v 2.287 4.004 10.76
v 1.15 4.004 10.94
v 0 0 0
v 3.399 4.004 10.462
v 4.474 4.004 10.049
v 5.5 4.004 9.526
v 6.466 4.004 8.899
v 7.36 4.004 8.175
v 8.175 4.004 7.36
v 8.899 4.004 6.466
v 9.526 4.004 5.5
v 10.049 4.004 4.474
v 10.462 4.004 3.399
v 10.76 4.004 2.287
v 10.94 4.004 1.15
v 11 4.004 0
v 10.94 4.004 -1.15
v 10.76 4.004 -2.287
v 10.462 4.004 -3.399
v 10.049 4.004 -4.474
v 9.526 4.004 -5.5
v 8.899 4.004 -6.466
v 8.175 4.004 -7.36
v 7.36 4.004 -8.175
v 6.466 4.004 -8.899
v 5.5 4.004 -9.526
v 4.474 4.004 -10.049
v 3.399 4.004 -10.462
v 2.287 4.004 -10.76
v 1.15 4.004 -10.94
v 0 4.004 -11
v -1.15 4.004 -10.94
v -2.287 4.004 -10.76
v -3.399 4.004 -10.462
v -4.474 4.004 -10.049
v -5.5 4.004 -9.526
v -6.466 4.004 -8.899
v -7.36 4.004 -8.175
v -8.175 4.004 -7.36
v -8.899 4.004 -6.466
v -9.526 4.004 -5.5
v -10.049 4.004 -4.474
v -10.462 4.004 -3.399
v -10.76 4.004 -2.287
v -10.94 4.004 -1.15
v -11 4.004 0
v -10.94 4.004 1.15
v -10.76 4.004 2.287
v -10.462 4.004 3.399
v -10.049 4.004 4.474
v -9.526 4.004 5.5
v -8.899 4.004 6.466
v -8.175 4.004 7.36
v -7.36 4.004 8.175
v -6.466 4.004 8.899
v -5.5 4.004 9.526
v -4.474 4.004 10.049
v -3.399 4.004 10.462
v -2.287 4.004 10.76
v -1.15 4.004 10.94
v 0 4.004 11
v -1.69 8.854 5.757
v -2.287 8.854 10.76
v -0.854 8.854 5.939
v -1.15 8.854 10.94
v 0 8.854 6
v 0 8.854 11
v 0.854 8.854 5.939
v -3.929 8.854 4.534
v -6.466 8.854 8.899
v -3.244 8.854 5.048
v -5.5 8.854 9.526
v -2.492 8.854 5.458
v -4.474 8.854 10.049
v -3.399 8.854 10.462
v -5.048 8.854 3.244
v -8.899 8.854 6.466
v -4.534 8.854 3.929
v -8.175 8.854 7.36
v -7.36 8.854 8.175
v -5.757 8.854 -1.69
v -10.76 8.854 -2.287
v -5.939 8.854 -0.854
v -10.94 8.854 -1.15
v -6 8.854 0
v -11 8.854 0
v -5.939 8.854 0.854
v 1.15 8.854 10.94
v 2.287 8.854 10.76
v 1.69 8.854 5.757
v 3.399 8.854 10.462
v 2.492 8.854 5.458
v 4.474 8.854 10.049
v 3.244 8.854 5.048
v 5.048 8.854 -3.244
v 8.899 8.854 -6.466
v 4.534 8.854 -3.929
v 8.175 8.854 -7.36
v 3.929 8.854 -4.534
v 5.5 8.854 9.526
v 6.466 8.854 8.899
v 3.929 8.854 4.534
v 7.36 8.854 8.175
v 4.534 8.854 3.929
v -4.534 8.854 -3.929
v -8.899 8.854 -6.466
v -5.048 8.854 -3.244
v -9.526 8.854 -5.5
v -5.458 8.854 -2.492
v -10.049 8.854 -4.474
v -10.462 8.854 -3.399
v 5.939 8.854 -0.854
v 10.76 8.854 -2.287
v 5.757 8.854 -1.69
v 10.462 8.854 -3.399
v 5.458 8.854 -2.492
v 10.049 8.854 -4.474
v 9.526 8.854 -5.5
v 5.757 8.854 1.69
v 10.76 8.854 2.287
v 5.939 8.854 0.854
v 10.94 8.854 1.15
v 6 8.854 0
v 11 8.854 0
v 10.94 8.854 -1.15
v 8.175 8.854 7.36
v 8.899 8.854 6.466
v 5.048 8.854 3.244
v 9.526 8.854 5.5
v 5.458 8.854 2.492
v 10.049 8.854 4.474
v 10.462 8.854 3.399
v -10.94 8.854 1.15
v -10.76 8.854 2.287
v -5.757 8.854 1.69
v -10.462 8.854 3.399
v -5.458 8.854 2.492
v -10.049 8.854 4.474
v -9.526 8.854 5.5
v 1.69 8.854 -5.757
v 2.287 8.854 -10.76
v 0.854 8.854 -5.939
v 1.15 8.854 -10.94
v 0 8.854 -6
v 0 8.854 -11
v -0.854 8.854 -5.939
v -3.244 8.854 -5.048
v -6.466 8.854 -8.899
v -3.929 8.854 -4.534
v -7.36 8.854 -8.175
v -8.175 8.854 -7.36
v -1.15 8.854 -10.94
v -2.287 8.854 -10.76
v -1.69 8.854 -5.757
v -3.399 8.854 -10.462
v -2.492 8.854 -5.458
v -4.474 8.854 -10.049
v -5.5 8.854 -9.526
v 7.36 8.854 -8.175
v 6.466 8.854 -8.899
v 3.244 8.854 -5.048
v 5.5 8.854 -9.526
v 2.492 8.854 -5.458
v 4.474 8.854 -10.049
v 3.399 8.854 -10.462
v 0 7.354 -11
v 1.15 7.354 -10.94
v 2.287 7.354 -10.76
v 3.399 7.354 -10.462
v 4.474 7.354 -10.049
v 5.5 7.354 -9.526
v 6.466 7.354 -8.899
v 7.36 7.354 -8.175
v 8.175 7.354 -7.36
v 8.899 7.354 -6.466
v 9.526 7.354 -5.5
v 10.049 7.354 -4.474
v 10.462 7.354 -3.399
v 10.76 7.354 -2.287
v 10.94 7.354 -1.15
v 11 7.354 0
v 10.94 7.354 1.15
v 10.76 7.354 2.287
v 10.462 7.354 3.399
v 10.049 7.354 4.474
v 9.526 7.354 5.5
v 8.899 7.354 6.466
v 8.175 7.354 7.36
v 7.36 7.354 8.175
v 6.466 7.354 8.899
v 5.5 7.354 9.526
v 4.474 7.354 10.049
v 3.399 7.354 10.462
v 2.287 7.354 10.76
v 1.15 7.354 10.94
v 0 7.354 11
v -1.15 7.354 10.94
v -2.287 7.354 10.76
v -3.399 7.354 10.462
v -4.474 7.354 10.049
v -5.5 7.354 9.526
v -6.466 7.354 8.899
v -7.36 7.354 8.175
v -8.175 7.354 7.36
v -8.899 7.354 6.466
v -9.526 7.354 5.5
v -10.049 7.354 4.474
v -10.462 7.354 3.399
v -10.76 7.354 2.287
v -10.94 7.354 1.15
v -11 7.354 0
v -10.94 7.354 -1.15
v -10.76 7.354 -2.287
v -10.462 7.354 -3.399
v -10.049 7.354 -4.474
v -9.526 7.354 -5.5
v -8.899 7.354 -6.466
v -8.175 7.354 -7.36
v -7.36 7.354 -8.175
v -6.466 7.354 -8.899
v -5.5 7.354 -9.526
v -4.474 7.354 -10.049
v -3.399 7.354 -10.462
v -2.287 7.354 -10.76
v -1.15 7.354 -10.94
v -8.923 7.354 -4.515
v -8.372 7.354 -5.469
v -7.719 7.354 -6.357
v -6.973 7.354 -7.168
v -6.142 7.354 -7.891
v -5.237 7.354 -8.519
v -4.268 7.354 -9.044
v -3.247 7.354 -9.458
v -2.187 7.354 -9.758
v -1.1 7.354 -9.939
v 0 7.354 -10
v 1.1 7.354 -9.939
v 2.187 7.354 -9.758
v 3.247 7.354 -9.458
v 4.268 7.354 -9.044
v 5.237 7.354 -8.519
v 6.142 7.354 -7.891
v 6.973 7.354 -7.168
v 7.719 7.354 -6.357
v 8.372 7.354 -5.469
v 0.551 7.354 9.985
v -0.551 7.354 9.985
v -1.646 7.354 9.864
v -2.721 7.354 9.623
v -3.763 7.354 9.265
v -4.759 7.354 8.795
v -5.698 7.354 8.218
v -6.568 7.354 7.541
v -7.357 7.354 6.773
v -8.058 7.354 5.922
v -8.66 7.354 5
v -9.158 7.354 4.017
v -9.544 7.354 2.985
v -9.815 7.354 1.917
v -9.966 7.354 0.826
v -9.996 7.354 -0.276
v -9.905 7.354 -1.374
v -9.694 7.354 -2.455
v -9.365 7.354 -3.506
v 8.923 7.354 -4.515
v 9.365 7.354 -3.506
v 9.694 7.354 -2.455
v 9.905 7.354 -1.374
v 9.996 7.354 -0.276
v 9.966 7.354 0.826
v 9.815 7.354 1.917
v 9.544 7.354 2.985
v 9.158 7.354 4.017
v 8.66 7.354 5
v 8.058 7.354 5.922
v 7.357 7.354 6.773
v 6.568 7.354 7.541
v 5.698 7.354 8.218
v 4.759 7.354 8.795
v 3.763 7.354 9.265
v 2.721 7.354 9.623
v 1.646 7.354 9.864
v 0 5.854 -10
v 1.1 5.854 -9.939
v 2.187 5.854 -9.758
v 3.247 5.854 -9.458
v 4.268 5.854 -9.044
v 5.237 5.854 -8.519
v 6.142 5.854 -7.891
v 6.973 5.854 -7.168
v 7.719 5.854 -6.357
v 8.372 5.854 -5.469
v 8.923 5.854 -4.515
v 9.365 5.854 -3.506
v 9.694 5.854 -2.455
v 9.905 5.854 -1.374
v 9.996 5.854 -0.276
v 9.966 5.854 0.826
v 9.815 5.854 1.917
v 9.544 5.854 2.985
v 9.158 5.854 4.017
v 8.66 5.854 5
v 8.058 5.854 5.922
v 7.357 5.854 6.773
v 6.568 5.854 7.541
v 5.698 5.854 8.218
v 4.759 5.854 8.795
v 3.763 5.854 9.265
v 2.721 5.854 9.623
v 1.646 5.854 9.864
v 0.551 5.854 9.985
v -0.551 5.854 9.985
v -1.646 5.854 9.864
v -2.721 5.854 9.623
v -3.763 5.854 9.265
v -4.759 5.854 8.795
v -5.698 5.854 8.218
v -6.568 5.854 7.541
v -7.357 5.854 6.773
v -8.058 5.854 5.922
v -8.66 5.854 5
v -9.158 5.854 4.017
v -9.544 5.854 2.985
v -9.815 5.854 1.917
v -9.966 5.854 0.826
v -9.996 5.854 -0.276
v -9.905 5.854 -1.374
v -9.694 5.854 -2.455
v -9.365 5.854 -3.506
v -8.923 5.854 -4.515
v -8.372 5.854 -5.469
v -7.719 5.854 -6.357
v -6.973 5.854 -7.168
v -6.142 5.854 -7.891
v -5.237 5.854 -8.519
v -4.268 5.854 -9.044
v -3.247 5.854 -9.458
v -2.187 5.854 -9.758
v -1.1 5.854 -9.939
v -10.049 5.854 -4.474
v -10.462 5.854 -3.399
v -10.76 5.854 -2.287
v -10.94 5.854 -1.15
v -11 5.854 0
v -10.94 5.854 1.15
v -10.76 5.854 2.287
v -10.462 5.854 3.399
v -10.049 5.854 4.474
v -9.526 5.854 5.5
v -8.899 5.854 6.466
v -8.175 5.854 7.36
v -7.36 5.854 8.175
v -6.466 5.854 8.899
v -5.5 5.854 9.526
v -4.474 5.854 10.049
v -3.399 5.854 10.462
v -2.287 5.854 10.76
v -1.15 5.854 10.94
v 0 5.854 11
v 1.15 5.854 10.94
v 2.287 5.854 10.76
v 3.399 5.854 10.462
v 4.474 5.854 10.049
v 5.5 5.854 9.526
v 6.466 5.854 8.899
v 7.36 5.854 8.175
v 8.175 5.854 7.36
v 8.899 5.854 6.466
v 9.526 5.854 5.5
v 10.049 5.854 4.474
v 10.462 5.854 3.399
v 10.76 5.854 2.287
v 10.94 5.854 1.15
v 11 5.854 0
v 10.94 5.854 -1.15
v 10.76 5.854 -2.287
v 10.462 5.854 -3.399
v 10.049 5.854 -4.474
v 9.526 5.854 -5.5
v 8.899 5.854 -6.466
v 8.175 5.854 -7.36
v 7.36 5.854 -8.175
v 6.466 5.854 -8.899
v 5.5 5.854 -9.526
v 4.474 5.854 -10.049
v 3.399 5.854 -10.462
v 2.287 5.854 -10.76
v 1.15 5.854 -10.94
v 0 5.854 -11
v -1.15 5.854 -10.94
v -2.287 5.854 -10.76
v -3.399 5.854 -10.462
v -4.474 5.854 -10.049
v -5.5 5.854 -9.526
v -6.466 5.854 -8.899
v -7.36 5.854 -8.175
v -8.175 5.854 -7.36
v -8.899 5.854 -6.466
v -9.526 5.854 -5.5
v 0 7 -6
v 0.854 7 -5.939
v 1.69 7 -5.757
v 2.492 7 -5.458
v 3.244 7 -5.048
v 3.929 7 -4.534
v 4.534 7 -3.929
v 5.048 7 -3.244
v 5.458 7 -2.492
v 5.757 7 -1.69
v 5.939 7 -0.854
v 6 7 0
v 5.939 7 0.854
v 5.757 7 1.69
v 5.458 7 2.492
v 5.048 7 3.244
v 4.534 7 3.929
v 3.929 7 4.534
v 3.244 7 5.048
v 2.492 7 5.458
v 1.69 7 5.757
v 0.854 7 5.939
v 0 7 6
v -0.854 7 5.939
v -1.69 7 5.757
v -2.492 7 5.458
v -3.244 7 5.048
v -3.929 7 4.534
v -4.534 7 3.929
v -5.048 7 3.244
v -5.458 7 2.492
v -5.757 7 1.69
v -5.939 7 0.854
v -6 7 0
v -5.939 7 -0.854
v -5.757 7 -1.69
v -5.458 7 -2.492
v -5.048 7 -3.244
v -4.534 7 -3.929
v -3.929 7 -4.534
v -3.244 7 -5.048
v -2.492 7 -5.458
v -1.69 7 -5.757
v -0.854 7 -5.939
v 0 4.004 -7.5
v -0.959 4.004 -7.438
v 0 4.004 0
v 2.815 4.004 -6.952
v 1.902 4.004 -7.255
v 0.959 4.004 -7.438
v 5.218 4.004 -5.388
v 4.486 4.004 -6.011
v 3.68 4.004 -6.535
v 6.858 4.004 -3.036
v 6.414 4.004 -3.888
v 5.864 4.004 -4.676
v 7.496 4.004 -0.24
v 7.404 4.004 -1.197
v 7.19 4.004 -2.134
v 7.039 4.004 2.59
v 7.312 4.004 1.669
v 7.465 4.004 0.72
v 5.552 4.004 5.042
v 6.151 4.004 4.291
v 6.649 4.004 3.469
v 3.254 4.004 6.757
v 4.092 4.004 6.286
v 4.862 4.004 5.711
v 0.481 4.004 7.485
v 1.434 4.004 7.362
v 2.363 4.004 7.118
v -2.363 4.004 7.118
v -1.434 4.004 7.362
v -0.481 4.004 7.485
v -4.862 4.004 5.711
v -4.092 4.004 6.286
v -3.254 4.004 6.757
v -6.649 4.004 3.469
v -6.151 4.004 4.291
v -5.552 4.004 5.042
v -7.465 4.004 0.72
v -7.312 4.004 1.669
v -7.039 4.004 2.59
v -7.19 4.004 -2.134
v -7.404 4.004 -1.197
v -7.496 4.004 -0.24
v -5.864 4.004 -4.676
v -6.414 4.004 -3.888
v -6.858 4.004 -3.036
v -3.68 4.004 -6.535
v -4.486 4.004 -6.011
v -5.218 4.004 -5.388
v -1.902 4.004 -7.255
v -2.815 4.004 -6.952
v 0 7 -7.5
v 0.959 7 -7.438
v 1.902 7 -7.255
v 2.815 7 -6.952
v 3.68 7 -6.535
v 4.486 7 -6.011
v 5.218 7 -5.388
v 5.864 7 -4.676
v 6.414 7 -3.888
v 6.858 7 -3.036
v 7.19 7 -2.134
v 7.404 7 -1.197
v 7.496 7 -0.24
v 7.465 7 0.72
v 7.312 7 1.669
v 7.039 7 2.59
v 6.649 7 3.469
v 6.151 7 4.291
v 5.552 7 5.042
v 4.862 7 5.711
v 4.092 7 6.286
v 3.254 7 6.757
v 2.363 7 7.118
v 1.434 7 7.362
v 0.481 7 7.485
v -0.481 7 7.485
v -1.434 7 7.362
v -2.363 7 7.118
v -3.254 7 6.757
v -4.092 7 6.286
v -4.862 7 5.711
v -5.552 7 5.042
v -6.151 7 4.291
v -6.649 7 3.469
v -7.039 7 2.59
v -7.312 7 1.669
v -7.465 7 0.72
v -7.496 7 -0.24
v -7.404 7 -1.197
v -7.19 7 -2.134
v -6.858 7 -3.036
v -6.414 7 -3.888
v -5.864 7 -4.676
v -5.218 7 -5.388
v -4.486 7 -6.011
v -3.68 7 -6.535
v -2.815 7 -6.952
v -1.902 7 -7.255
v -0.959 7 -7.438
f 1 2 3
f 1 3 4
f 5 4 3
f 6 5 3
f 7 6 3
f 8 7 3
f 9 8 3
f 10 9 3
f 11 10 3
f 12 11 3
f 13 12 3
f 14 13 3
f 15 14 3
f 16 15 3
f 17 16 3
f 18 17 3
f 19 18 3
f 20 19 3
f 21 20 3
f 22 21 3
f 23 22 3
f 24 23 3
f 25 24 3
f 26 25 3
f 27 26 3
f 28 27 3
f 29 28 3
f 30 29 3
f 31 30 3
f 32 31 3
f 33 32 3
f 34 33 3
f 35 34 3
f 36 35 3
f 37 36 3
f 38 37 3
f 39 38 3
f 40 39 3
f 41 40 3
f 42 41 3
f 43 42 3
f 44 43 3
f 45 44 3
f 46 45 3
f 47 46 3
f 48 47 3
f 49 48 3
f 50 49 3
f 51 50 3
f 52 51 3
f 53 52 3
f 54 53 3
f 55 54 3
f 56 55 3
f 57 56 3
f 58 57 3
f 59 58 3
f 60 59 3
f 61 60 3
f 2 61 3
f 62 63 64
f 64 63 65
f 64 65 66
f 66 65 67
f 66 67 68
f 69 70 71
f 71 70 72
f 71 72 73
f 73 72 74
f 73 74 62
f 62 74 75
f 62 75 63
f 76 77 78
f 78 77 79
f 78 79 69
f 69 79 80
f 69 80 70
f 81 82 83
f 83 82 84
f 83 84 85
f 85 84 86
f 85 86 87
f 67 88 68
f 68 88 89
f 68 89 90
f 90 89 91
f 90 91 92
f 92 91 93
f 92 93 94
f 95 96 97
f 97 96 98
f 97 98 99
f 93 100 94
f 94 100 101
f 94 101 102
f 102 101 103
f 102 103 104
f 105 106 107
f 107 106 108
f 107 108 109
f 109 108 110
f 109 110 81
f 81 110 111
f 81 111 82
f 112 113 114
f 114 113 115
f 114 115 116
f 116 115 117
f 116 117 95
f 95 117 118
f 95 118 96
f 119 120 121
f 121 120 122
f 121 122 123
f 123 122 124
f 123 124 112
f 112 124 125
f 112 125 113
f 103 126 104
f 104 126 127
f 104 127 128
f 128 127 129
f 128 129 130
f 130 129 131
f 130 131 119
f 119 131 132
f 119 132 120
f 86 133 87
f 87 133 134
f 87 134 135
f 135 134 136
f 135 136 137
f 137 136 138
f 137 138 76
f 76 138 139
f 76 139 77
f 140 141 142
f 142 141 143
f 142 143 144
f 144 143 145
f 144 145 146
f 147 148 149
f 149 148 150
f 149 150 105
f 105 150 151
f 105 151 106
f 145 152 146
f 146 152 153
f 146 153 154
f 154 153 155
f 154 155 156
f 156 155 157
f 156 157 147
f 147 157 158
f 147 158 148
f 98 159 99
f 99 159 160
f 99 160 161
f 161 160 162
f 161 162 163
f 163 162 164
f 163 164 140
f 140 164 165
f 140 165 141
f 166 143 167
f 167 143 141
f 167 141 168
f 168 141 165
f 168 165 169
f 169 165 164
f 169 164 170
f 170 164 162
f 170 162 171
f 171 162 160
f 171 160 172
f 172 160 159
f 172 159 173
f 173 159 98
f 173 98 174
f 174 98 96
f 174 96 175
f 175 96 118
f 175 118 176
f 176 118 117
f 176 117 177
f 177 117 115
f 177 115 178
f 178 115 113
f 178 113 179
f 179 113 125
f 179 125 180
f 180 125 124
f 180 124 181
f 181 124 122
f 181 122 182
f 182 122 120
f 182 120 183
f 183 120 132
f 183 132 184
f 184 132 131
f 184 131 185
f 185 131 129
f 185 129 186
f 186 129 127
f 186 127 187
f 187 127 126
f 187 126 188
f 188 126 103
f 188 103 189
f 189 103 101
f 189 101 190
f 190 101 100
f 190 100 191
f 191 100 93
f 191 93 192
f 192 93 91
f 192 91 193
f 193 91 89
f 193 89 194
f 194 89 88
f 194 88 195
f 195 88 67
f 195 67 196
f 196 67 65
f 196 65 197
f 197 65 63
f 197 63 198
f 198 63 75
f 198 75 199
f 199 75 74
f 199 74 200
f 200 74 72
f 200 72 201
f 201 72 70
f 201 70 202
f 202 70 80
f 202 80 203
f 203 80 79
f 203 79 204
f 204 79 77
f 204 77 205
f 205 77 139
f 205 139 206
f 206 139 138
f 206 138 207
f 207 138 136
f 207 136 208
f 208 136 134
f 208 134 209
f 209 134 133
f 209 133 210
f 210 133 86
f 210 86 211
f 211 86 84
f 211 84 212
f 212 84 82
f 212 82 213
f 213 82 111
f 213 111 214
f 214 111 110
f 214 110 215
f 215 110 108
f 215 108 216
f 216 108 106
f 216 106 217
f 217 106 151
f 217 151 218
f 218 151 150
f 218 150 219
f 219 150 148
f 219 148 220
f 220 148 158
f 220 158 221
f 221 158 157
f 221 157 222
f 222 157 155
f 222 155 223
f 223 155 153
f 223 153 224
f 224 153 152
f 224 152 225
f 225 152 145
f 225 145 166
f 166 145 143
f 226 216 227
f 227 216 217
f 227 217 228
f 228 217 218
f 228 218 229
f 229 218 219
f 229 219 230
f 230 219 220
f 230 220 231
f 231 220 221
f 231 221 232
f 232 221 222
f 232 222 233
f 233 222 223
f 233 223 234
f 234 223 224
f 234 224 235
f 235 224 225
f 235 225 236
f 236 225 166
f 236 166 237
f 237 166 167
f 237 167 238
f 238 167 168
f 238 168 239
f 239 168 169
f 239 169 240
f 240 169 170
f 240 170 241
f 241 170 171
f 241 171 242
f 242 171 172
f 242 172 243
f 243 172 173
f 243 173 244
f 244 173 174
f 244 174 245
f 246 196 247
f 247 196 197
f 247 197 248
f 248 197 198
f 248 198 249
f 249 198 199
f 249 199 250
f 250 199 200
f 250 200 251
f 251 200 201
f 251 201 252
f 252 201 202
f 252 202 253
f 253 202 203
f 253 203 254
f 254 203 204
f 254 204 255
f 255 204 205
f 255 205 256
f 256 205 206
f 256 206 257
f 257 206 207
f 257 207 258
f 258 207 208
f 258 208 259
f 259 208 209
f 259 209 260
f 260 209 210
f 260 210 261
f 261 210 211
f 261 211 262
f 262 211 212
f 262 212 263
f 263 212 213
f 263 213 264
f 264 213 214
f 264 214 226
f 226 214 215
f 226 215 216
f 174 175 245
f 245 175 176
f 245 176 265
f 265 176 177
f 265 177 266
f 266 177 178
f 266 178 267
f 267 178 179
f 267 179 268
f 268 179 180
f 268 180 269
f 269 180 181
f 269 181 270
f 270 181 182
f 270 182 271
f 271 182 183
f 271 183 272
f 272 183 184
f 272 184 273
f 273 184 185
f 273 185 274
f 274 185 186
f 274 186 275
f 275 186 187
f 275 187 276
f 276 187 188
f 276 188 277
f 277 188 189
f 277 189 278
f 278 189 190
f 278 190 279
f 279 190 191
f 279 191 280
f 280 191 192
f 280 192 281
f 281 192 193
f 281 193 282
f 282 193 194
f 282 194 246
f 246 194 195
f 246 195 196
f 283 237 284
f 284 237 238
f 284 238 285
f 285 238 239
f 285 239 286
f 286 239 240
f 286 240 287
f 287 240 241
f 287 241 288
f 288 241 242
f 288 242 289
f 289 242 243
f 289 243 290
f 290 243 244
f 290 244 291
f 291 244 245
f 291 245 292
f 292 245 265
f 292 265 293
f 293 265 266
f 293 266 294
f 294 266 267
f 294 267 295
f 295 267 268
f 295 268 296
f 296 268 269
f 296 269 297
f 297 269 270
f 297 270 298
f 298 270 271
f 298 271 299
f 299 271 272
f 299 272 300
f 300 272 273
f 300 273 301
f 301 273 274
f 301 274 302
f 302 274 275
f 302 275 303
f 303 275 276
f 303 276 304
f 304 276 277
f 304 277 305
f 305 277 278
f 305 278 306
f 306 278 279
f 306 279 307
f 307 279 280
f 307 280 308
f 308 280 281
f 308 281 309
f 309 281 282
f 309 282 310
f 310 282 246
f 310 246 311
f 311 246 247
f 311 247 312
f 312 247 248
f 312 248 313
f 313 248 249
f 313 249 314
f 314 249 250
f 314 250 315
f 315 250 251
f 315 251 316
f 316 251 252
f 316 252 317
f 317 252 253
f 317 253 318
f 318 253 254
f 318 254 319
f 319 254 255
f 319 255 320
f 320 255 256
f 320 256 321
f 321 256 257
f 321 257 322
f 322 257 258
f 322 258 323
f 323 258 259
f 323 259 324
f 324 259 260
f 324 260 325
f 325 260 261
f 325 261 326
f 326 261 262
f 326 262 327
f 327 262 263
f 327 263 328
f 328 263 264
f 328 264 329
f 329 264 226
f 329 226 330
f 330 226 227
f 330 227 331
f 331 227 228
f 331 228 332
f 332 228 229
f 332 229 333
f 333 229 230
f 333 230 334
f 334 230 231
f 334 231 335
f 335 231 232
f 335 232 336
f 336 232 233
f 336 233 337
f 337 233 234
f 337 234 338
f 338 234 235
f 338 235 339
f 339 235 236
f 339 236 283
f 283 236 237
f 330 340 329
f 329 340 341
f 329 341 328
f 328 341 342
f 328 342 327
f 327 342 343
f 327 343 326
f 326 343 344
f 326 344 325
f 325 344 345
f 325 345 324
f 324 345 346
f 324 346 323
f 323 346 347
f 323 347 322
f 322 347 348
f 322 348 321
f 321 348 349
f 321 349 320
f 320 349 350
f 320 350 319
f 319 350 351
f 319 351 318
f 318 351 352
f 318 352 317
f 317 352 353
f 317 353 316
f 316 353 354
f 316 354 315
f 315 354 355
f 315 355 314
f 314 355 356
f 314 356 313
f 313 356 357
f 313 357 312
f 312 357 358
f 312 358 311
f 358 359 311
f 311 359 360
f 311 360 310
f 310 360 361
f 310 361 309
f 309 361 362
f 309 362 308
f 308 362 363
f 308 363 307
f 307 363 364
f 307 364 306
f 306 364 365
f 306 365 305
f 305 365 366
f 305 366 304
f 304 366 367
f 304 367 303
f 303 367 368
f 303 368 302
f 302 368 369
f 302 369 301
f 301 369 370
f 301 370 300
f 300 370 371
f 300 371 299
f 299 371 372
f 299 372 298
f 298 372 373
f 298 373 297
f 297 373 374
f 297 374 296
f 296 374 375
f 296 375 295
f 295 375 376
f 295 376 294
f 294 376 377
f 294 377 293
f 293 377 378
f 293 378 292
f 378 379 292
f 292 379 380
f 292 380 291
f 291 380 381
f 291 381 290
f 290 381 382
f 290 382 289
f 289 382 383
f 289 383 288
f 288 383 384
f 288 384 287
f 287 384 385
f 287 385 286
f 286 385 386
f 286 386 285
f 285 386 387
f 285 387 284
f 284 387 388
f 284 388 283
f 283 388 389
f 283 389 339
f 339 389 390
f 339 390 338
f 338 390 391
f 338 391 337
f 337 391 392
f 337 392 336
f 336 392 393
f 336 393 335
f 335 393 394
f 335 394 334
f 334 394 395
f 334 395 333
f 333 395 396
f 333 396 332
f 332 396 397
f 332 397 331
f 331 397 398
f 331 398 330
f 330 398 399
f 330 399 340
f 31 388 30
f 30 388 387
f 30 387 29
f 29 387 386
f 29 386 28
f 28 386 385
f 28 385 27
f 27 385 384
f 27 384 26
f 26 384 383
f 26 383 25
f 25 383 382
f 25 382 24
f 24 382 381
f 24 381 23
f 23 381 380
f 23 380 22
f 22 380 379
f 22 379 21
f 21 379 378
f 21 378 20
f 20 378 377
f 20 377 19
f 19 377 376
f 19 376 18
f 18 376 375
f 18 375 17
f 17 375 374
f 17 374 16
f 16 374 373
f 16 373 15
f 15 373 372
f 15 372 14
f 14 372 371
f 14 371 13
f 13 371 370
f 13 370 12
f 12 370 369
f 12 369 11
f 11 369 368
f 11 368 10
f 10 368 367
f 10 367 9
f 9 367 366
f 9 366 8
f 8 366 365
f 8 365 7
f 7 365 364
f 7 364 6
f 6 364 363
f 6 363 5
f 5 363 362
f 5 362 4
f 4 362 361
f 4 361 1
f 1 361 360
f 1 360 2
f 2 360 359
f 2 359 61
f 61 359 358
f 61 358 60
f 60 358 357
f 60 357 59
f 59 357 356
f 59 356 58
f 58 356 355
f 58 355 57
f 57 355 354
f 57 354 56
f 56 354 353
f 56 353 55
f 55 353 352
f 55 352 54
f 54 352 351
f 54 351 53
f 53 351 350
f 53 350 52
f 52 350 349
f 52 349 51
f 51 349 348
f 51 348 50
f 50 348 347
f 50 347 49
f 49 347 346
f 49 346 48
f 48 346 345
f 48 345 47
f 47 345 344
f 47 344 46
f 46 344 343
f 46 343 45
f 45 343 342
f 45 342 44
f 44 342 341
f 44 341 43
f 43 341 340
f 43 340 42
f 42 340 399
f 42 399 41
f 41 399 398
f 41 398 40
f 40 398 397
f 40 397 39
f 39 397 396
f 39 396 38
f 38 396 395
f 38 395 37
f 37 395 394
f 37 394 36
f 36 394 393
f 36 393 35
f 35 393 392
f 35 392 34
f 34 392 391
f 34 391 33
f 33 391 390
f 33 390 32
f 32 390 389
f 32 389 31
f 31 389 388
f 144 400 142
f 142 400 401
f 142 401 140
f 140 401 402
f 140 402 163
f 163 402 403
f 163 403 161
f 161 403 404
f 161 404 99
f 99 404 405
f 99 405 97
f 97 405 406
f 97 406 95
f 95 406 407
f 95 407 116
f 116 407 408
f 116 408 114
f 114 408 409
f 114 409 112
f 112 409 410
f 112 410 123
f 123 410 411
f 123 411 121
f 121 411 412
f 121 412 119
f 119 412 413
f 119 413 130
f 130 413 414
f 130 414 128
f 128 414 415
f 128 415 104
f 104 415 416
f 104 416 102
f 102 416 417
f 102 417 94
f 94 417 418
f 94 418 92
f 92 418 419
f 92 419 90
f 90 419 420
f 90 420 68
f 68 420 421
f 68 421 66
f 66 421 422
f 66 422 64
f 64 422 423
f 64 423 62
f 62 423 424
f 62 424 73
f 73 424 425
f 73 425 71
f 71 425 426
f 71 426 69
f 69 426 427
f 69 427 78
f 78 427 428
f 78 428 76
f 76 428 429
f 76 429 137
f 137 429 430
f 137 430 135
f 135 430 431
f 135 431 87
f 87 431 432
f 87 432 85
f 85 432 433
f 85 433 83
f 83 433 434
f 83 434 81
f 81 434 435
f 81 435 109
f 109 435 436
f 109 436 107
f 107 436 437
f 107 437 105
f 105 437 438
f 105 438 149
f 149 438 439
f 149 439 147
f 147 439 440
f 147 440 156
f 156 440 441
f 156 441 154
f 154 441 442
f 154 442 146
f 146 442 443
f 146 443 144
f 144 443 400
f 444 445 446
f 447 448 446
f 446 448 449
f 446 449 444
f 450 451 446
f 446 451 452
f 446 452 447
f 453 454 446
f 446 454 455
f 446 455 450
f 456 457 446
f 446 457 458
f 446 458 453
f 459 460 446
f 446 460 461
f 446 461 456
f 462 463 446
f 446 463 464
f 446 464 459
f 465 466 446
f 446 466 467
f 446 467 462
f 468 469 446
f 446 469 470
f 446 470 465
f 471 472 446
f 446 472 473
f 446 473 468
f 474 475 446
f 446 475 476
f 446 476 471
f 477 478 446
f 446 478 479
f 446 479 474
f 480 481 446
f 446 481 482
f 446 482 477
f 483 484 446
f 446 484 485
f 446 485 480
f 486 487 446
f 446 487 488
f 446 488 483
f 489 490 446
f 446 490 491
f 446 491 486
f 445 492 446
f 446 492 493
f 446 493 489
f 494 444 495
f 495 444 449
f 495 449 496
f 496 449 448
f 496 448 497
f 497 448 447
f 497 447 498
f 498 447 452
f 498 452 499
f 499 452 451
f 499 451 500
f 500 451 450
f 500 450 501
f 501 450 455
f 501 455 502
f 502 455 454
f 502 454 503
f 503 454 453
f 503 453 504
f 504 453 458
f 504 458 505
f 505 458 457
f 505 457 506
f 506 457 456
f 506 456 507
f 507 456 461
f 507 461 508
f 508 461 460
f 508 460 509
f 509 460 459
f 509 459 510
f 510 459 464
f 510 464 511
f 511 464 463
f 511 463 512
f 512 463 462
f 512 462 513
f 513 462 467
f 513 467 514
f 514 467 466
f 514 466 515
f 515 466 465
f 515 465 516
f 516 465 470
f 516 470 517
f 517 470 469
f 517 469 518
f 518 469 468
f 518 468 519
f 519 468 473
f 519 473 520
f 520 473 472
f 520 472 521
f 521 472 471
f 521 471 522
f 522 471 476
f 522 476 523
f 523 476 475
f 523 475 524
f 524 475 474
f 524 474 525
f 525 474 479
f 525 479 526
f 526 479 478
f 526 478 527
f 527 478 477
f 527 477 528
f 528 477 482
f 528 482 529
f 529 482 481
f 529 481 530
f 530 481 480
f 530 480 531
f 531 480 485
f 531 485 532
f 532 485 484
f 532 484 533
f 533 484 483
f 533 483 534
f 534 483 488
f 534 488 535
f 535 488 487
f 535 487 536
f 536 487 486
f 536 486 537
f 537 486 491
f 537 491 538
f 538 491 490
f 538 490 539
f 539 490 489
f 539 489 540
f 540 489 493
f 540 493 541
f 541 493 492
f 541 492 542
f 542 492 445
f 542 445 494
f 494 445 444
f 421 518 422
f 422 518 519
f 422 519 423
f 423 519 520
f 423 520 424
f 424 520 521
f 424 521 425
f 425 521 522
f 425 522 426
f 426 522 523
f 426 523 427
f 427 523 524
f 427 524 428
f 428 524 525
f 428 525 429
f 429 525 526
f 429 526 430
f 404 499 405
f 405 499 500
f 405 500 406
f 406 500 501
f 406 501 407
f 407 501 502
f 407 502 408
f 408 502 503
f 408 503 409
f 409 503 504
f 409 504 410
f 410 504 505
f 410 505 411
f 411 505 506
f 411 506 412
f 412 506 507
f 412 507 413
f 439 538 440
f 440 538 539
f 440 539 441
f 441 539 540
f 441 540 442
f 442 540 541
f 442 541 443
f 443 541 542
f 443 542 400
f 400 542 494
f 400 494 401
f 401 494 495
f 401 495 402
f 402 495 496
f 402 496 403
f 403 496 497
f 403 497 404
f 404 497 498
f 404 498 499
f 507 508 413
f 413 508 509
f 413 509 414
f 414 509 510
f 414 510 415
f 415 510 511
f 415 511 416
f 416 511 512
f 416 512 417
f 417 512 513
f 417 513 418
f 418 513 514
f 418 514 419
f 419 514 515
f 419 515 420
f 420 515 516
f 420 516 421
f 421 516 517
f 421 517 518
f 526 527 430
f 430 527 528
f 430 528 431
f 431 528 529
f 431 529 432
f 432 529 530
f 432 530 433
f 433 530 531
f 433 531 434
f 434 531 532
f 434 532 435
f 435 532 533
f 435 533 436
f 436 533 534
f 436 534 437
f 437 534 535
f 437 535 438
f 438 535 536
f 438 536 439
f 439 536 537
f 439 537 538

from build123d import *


with BuildPart() as part:
    # Esquisse1 → Révolution1 (revolve)
    with BuildSketch(Plane.XY, mode=Mode.PRIVATE) as r_volution1_sk:
        Polygon((0, 0), (0, 8.853672577), (-11, 8.853672577), (-11, 7.353672577), (-10, 7.353672577), (-10, 5.853672577), (-11, 5.853672577), (-11, 4.003672577), align=None)
    revolve(r_volution1_sk.sketch.rotate(Axis((0, 0, 0), (0, 1, 0)), 270), axis=Axis((0, 0, 0), (0, 1, 0)))

    # Esquisse3 → Enlèvement de matière-Révolution1 (revolve, cut)
    with BuildSketch(Plane.XY, mode=Mode.PRIVATE) as enl_vement_de_mati_re_r_volution1_sk:
        Polygon((-6, 10), (-6, 7), (-7.5, 7), (-7.5, 4.003672577), (0, 4.003672577), (0, 10), align=None)
    revolve(enl_vement_de_mati_re_r_volution1_sk.sketch.rotate(Axis((0, 0, 0), (0, 1, 0)), 270), axis=Axis((0, 0, 0), (0, 1, 0)), mode=Mode.SUBTRACT)


solid = part.part
